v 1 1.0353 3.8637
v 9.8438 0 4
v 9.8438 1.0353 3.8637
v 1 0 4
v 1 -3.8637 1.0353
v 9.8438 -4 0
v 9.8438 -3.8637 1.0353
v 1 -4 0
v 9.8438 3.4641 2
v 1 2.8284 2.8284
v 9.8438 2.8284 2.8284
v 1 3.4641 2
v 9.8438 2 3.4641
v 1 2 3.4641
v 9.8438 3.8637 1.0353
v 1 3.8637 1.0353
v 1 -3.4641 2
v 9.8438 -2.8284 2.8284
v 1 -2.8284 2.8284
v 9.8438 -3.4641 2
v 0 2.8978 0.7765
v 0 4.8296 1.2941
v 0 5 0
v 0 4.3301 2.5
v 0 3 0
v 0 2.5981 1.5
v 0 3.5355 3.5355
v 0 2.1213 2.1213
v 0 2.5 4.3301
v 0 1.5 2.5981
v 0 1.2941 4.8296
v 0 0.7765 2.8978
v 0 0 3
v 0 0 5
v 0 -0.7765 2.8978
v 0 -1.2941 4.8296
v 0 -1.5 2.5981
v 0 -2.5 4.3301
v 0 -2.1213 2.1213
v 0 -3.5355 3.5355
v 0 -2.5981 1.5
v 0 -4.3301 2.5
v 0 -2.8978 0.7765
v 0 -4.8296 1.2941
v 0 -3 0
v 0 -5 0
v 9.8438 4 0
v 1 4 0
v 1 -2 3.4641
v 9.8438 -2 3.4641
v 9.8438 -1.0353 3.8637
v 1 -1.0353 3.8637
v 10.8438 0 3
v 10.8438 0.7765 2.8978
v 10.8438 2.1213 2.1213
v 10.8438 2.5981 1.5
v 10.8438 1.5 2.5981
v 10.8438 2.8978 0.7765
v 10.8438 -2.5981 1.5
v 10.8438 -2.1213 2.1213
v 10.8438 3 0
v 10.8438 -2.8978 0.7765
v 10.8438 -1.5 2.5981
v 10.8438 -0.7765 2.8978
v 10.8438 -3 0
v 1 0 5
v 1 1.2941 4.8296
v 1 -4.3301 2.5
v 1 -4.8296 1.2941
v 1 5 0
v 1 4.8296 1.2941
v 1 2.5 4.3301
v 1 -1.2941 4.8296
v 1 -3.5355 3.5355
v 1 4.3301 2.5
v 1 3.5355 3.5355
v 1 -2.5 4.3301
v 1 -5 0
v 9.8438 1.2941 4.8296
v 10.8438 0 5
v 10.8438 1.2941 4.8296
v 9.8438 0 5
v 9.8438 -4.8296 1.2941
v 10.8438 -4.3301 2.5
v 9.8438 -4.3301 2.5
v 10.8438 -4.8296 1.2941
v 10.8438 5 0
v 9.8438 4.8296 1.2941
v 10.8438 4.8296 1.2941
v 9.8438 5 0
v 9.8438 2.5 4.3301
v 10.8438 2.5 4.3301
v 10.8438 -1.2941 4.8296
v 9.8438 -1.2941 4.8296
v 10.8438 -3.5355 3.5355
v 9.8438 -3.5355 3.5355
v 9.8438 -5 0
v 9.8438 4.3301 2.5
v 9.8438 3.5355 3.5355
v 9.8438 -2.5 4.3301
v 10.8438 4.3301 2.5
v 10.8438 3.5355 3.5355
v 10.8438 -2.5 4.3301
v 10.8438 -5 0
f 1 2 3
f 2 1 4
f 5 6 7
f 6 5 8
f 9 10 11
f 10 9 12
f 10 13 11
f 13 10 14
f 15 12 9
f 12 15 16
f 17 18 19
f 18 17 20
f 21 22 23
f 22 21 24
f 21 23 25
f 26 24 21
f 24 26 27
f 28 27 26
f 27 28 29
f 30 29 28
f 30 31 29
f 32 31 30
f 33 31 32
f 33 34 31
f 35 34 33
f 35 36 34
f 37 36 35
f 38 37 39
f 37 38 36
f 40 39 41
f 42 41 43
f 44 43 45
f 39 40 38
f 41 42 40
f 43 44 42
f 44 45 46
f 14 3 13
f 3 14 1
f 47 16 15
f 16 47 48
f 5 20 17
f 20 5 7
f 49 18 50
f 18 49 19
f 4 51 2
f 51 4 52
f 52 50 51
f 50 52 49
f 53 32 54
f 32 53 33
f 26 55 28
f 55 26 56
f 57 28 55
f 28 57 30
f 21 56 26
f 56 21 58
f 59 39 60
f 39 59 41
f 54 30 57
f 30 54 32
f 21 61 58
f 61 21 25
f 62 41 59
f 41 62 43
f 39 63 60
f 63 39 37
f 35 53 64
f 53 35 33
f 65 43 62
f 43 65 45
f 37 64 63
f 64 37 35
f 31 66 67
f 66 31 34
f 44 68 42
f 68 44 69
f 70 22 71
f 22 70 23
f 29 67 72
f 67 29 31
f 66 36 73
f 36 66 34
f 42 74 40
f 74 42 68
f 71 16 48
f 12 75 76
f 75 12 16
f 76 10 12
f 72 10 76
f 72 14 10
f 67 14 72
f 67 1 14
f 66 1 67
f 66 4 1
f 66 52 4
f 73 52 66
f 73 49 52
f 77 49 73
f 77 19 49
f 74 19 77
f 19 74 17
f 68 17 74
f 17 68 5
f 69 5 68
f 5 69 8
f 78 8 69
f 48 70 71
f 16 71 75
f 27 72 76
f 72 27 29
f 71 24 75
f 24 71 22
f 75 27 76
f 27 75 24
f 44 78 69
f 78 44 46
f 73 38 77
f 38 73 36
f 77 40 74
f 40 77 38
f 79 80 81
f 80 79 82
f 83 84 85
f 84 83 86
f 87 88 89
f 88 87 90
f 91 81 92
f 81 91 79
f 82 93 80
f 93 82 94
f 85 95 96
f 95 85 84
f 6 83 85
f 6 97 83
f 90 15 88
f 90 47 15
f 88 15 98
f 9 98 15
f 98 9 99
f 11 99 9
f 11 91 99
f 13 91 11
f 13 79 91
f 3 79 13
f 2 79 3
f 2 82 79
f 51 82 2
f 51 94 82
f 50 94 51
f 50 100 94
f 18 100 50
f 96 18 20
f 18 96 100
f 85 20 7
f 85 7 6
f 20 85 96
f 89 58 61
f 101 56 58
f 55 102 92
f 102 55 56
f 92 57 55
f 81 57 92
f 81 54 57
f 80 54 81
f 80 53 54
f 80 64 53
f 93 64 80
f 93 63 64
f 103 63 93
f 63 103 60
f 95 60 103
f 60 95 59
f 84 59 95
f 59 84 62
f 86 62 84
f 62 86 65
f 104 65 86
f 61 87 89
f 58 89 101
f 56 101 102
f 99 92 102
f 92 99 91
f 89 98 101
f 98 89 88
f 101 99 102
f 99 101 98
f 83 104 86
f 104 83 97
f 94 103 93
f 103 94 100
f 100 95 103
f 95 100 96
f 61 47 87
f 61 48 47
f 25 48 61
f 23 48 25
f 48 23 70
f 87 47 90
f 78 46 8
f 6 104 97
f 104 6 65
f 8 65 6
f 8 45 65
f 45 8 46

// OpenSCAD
// file: ../build_environments.scad
// build_environments.scad: modules to build level sections
//

module pool(diameter=10.0, wall_height=2.0, step_width=3.0, connections=[])
{
    difference() {
        union() {
        difference() {
            cylinder(h=0.5,r1=diameter+step_width,r2=diameter+step_width,$fn=48);
            translate([0,0,-0.1])
                cylinder(h=0.7,r1=diameter,r2=diameter,$fn=48);
        }
        difference() {
            cylinder(h=wall_height,r1=diameter+step_width+1.0,r2=diameter+step_width+1.0,$fn=48);
            translate([0,0,-0.1])
                cylinder(h=wall_height+0.2,r1=diameter+step_width,r2=diameter+step_width,$fn=48);
        }
        }
    
        for (c = connections)
        {
            rotate([0,90,0]) {
                angle = atan2(c[1],c[0]);
                rotate([-angle,0,0]) {
                    cylinder(h=diameter+5.0,r1=c[2],r2=c[2],$fn=48);
                }
            }
        }
    }
}

module straight(length=10.0, width=2.0, dy1=0.0, dy2=0.0, dz=0.0)
{
    dims = [0, 0, 0, 0, 0, (dz/length)];
    matrix = [
        [ 1, dims[0], dims[1], 0 ],
        [ dims[2], 1, dims[4], 0 ],
        [ dims[5], dims[3], 1, 0 ],
        [ 0, 0, 0, 1 ]
    ];
    multmatrix(matrix)
    difference() {
        translate([dy1,0,0])
        union() {
            rotate([0,90,0]) {
                difference() {
                    cylinder(h=(length-dy1-dy2),r1=width+1.0,r2=width+1.0,$fn=24);
                    translate([0,0,-0.1])
                        cylinder(h=(length-dy1-dy2+0.2),r1=width,r2=width,$fn=24);
                }
                difference() {
                    cylinder(h=1.0,r1=width+2.0,r2=width+2.0,$fn=24);
                    translate([0,0,-0.1])
                        cylinder(h=1.2,r1=width,r2=width,$fn=24);
                }
                translate([0,0,(length-dy1-dy2)-1.0]) {
                    difference() {
                        cylinder(h=1.0,r1=width+2.0,r2=width+2.0,$fn=24);
                        translate([0,0,-0.1])
                            cylinder(h=1.2,r1=width,r2=width,$fn=24);
                    }
                }
            }
        }
        translate([0,0,-(2*width+4.0)/2])
            cube([3*length,3*length,2*width+4.0],center=true);
    }
}

module curve(p0=[0,0], center=[0,0], dir=1, angle=0.0, width=2.0)
{
    radius = sqrt((p0[0]-center[0])*(p0[0]-center[0]) + (p0[1]-center[1])*(p0[1]-center[1]));
    if (dir == 0) {
        difference() {
            rotate([0,0,-90])
            difference() {
                rotate_extrude(angle = angle, convexity = 10, $fn=32)
                    translate([radius, 0, 0])
                        circle(r = width+1.0,$fn=24);
                rotate([0,0,-1.0])
                    rotate_extrude(angle = angle+2.0, convexity = 10, $fn=32)
                        translate([radius, 0, 0])
                            circle(r = width,$fn=24);
            }
            translate([0,0,-(2*width+4.0)/2])
                cube([5*radius,5*radius,2*width+4.0],center=true);
        }
    }
    else {
        difference() {
            rotate([0,0,90])
            difference() {
                rotate_extrude(angle = -angle, convexity = 10, $fn=32)
                    translate([radius, 0, 0])
                        circle(r = width+1.0,$fn=24);
                rotate([0,0,1.0])
                    rotate_extrude(angle = -angle-2.0, convexity = 10, $fn=32)
                        translate([radius, 0, 0])
                            circle(r = width,$fn=24);
            }
            translate([0,0,-(2*width+4.0)/2])
                cube([5*radius,5*radius,2*width+4.0],center=true);
        }
    }

}

// test pool
//pool(diameter=12.0000, wall_height=3.0000, step_width=3.0000, connections=[[0.0000,-26.0000,2.0000], [23.6074,0.0000,2.0000]]);

// test straight, slope
//straight(length=26.0000, width=2.0000, dy1=11.8322, dy2=6.7082, dz=0.0000);
//straight(length=29.1549, width=12.0000, dy1=0.0000, dy2=0.0000, dz=-15.0000);

// test curve
//curve(p0=[23.6074, 0.0000], center=[23.6074, 5.0000], dir=0, angle=60.1011, width=2.0000);
//curve(p0=[33.6426, 12.4219], center=[37.9771, 9.9295], dir=1, angle=120.4627, width=2.0000);
// main file
use <../build_environments.scad>;
straight(length=10.8438, width=3.0000, dy1=0.0000, dy2=0.0000, dz=0.0000);
